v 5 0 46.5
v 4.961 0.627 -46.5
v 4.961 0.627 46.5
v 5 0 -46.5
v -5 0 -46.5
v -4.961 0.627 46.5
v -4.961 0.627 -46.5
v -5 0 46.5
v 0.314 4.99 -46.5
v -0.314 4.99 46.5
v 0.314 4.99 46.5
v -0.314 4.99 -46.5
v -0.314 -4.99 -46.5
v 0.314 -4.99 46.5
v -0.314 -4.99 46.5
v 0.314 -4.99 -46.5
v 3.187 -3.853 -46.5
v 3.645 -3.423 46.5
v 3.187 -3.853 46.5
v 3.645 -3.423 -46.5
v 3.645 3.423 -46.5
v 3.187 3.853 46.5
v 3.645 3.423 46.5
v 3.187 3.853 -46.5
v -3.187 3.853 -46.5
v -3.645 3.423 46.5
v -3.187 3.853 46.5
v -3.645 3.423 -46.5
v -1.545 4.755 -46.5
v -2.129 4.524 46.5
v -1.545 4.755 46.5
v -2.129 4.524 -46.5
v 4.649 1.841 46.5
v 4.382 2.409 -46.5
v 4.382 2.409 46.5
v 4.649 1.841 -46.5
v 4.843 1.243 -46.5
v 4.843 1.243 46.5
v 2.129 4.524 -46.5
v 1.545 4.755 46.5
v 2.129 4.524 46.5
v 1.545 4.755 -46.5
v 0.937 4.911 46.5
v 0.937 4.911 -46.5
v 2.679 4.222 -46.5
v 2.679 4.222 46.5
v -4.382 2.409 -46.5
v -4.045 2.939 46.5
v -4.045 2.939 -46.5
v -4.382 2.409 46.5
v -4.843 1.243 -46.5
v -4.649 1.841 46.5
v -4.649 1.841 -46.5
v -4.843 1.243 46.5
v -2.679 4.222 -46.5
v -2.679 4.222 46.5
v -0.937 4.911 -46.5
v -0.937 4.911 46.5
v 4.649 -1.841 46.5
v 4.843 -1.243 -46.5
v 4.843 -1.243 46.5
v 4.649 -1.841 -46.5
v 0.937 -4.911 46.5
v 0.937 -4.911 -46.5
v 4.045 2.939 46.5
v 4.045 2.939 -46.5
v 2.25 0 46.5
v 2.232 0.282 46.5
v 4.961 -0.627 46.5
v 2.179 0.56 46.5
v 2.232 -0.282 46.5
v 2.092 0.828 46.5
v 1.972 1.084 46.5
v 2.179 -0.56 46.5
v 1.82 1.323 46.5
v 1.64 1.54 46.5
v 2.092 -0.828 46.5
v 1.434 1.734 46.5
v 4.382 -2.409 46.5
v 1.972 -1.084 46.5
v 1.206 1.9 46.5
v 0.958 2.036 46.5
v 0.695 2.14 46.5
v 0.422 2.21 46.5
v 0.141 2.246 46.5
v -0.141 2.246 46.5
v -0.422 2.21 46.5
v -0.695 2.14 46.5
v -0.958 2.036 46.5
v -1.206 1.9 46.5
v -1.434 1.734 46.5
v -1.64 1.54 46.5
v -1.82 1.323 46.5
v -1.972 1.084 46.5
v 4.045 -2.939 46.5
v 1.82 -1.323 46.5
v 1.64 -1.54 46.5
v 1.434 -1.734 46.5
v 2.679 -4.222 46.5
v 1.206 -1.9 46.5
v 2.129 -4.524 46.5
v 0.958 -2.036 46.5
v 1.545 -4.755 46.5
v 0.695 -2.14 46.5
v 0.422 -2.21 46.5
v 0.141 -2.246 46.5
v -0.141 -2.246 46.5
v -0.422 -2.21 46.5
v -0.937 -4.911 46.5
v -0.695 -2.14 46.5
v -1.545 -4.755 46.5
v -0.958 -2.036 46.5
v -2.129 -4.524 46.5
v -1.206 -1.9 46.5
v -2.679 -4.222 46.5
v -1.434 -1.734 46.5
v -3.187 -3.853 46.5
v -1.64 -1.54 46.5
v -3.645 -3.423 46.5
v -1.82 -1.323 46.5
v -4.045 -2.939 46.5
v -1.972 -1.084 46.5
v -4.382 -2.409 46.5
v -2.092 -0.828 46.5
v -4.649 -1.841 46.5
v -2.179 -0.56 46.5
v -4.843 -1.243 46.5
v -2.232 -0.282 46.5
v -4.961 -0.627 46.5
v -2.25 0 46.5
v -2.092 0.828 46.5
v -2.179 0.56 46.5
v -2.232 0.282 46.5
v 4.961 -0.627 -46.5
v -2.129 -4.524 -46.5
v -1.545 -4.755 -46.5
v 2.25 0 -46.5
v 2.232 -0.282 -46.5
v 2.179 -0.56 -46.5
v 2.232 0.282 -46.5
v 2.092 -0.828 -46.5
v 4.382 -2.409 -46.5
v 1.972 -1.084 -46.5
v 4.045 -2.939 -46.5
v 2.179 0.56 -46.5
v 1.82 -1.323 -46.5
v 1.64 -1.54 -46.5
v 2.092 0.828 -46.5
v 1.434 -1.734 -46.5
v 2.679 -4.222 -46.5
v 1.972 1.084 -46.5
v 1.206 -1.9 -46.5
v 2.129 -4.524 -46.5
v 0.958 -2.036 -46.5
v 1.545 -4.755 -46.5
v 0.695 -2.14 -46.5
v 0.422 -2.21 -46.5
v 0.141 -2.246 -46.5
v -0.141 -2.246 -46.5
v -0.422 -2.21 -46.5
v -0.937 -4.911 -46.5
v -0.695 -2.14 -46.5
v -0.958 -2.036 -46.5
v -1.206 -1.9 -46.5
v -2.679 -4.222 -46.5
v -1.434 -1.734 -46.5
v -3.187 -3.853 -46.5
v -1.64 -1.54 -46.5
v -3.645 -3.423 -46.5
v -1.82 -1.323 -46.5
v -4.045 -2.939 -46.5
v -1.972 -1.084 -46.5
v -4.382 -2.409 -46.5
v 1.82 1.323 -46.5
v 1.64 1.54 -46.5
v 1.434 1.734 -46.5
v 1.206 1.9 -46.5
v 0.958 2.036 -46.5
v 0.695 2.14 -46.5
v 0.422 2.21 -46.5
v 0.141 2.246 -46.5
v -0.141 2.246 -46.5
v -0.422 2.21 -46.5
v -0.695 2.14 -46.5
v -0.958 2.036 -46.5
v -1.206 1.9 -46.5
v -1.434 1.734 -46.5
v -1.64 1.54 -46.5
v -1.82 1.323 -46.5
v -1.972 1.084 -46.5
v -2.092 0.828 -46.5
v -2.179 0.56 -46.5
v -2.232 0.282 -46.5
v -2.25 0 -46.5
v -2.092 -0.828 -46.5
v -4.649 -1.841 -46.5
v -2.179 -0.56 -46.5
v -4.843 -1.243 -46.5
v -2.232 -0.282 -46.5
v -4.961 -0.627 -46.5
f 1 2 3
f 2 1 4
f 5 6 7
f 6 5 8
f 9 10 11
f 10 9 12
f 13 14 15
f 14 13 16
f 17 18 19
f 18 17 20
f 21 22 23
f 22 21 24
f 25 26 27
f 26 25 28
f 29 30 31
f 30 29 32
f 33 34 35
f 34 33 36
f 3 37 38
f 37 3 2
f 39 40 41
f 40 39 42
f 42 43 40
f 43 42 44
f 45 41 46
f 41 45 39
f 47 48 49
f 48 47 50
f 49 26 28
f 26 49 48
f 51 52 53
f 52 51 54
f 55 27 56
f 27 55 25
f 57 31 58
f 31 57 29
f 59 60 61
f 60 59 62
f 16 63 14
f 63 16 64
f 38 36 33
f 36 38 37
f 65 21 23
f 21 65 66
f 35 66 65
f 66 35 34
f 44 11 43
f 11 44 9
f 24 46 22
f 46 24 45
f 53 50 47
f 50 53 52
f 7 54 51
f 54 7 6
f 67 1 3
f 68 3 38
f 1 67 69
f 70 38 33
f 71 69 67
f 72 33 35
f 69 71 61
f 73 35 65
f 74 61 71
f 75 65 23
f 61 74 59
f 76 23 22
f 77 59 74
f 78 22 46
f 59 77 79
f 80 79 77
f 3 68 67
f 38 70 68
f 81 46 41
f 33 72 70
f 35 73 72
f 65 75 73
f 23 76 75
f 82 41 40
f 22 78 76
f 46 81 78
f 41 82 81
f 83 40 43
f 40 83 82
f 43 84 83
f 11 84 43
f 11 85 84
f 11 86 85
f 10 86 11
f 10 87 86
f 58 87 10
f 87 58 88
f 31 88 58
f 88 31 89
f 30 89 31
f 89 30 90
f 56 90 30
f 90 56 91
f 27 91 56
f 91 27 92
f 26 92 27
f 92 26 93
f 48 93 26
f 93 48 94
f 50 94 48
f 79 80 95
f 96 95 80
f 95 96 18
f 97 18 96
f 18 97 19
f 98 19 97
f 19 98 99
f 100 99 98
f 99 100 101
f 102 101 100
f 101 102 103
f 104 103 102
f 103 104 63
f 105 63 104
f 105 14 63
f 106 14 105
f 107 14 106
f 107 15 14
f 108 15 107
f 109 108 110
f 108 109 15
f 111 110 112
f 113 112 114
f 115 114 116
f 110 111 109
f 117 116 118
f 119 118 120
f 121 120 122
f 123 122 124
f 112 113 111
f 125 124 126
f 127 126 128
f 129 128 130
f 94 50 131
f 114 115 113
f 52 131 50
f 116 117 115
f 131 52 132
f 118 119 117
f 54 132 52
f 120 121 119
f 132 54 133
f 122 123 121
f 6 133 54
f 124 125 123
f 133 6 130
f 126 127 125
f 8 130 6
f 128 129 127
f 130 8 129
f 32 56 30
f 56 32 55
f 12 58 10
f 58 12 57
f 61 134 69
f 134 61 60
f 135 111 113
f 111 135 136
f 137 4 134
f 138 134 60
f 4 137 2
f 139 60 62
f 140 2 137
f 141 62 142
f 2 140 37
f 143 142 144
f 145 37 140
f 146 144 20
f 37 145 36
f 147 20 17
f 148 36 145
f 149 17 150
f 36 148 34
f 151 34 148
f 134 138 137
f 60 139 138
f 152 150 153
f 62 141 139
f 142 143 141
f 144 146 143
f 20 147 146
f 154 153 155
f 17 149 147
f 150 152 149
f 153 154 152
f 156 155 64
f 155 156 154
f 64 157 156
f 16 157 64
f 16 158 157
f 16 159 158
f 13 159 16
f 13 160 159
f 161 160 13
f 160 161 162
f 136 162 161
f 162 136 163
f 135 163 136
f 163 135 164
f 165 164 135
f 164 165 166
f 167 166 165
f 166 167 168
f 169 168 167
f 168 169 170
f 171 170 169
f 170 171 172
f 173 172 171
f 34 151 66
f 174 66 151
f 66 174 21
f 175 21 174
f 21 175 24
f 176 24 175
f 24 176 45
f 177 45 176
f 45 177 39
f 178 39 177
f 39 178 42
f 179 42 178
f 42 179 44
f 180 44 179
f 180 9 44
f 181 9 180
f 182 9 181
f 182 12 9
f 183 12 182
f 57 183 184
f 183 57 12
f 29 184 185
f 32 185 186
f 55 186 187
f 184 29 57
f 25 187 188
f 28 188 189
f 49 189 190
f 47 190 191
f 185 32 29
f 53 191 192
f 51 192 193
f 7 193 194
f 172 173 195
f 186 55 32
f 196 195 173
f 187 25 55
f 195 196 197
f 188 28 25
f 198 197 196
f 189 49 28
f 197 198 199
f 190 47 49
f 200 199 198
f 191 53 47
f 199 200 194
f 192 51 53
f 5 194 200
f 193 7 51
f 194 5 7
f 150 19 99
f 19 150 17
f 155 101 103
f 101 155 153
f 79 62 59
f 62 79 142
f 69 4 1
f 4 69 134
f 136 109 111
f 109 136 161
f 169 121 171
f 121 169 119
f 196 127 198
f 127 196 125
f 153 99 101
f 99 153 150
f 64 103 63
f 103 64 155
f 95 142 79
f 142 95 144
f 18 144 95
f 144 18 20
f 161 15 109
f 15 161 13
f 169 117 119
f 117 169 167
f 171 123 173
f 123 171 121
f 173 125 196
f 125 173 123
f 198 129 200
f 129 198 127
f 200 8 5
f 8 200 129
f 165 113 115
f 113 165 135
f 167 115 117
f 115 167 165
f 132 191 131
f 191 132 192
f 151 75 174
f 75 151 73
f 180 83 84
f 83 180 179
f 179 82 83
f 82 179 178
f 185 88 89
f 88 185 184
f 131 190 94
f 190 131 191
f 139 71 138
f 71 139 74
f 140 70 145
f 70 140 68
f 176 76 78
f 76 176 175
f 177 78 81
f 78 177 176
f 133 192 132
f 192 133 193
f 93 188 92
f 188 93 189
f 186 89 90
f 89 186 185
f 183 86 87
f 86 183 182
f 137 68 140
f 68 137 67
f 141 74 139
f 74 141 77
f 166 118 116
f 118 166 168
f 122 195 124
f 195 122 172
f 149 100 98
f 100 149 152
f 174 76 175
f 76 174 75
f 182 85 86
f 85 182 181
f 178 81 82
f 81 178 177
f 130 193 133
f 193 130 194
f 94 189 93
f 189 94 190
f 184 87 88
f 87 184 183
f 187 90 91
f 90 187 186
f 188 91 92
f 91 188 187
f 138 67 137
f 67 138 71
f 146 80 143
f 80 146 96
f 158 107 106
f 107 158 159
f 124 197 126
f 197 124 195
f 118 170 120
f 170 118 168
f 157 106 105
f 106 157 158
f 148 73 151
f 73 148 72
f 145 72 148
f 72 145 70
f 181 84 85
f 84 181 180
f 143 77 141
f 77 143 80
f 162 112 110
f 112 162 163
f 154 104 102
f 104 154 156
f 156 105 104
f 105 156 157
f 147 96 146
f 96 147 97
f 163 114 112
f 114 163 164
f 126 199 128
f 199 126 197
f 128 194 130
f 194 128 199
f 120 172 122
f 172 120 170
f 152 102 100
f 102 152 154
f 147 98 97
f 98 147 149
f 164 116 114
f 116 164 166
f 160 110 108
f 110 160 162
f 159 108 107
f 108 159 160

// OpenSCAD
$fn = 50;


difference() {
	union() {
		translate(v = [0, 0, -46.5000000000]) {
			cylinder(h = 93, r = 5.0000000000);
		}
	}
	union() {
		translate(v = [0, 0, -100.0000000000]) {
			cylinder(h = 200, r = 2.2500000000);
		}
	}
}
